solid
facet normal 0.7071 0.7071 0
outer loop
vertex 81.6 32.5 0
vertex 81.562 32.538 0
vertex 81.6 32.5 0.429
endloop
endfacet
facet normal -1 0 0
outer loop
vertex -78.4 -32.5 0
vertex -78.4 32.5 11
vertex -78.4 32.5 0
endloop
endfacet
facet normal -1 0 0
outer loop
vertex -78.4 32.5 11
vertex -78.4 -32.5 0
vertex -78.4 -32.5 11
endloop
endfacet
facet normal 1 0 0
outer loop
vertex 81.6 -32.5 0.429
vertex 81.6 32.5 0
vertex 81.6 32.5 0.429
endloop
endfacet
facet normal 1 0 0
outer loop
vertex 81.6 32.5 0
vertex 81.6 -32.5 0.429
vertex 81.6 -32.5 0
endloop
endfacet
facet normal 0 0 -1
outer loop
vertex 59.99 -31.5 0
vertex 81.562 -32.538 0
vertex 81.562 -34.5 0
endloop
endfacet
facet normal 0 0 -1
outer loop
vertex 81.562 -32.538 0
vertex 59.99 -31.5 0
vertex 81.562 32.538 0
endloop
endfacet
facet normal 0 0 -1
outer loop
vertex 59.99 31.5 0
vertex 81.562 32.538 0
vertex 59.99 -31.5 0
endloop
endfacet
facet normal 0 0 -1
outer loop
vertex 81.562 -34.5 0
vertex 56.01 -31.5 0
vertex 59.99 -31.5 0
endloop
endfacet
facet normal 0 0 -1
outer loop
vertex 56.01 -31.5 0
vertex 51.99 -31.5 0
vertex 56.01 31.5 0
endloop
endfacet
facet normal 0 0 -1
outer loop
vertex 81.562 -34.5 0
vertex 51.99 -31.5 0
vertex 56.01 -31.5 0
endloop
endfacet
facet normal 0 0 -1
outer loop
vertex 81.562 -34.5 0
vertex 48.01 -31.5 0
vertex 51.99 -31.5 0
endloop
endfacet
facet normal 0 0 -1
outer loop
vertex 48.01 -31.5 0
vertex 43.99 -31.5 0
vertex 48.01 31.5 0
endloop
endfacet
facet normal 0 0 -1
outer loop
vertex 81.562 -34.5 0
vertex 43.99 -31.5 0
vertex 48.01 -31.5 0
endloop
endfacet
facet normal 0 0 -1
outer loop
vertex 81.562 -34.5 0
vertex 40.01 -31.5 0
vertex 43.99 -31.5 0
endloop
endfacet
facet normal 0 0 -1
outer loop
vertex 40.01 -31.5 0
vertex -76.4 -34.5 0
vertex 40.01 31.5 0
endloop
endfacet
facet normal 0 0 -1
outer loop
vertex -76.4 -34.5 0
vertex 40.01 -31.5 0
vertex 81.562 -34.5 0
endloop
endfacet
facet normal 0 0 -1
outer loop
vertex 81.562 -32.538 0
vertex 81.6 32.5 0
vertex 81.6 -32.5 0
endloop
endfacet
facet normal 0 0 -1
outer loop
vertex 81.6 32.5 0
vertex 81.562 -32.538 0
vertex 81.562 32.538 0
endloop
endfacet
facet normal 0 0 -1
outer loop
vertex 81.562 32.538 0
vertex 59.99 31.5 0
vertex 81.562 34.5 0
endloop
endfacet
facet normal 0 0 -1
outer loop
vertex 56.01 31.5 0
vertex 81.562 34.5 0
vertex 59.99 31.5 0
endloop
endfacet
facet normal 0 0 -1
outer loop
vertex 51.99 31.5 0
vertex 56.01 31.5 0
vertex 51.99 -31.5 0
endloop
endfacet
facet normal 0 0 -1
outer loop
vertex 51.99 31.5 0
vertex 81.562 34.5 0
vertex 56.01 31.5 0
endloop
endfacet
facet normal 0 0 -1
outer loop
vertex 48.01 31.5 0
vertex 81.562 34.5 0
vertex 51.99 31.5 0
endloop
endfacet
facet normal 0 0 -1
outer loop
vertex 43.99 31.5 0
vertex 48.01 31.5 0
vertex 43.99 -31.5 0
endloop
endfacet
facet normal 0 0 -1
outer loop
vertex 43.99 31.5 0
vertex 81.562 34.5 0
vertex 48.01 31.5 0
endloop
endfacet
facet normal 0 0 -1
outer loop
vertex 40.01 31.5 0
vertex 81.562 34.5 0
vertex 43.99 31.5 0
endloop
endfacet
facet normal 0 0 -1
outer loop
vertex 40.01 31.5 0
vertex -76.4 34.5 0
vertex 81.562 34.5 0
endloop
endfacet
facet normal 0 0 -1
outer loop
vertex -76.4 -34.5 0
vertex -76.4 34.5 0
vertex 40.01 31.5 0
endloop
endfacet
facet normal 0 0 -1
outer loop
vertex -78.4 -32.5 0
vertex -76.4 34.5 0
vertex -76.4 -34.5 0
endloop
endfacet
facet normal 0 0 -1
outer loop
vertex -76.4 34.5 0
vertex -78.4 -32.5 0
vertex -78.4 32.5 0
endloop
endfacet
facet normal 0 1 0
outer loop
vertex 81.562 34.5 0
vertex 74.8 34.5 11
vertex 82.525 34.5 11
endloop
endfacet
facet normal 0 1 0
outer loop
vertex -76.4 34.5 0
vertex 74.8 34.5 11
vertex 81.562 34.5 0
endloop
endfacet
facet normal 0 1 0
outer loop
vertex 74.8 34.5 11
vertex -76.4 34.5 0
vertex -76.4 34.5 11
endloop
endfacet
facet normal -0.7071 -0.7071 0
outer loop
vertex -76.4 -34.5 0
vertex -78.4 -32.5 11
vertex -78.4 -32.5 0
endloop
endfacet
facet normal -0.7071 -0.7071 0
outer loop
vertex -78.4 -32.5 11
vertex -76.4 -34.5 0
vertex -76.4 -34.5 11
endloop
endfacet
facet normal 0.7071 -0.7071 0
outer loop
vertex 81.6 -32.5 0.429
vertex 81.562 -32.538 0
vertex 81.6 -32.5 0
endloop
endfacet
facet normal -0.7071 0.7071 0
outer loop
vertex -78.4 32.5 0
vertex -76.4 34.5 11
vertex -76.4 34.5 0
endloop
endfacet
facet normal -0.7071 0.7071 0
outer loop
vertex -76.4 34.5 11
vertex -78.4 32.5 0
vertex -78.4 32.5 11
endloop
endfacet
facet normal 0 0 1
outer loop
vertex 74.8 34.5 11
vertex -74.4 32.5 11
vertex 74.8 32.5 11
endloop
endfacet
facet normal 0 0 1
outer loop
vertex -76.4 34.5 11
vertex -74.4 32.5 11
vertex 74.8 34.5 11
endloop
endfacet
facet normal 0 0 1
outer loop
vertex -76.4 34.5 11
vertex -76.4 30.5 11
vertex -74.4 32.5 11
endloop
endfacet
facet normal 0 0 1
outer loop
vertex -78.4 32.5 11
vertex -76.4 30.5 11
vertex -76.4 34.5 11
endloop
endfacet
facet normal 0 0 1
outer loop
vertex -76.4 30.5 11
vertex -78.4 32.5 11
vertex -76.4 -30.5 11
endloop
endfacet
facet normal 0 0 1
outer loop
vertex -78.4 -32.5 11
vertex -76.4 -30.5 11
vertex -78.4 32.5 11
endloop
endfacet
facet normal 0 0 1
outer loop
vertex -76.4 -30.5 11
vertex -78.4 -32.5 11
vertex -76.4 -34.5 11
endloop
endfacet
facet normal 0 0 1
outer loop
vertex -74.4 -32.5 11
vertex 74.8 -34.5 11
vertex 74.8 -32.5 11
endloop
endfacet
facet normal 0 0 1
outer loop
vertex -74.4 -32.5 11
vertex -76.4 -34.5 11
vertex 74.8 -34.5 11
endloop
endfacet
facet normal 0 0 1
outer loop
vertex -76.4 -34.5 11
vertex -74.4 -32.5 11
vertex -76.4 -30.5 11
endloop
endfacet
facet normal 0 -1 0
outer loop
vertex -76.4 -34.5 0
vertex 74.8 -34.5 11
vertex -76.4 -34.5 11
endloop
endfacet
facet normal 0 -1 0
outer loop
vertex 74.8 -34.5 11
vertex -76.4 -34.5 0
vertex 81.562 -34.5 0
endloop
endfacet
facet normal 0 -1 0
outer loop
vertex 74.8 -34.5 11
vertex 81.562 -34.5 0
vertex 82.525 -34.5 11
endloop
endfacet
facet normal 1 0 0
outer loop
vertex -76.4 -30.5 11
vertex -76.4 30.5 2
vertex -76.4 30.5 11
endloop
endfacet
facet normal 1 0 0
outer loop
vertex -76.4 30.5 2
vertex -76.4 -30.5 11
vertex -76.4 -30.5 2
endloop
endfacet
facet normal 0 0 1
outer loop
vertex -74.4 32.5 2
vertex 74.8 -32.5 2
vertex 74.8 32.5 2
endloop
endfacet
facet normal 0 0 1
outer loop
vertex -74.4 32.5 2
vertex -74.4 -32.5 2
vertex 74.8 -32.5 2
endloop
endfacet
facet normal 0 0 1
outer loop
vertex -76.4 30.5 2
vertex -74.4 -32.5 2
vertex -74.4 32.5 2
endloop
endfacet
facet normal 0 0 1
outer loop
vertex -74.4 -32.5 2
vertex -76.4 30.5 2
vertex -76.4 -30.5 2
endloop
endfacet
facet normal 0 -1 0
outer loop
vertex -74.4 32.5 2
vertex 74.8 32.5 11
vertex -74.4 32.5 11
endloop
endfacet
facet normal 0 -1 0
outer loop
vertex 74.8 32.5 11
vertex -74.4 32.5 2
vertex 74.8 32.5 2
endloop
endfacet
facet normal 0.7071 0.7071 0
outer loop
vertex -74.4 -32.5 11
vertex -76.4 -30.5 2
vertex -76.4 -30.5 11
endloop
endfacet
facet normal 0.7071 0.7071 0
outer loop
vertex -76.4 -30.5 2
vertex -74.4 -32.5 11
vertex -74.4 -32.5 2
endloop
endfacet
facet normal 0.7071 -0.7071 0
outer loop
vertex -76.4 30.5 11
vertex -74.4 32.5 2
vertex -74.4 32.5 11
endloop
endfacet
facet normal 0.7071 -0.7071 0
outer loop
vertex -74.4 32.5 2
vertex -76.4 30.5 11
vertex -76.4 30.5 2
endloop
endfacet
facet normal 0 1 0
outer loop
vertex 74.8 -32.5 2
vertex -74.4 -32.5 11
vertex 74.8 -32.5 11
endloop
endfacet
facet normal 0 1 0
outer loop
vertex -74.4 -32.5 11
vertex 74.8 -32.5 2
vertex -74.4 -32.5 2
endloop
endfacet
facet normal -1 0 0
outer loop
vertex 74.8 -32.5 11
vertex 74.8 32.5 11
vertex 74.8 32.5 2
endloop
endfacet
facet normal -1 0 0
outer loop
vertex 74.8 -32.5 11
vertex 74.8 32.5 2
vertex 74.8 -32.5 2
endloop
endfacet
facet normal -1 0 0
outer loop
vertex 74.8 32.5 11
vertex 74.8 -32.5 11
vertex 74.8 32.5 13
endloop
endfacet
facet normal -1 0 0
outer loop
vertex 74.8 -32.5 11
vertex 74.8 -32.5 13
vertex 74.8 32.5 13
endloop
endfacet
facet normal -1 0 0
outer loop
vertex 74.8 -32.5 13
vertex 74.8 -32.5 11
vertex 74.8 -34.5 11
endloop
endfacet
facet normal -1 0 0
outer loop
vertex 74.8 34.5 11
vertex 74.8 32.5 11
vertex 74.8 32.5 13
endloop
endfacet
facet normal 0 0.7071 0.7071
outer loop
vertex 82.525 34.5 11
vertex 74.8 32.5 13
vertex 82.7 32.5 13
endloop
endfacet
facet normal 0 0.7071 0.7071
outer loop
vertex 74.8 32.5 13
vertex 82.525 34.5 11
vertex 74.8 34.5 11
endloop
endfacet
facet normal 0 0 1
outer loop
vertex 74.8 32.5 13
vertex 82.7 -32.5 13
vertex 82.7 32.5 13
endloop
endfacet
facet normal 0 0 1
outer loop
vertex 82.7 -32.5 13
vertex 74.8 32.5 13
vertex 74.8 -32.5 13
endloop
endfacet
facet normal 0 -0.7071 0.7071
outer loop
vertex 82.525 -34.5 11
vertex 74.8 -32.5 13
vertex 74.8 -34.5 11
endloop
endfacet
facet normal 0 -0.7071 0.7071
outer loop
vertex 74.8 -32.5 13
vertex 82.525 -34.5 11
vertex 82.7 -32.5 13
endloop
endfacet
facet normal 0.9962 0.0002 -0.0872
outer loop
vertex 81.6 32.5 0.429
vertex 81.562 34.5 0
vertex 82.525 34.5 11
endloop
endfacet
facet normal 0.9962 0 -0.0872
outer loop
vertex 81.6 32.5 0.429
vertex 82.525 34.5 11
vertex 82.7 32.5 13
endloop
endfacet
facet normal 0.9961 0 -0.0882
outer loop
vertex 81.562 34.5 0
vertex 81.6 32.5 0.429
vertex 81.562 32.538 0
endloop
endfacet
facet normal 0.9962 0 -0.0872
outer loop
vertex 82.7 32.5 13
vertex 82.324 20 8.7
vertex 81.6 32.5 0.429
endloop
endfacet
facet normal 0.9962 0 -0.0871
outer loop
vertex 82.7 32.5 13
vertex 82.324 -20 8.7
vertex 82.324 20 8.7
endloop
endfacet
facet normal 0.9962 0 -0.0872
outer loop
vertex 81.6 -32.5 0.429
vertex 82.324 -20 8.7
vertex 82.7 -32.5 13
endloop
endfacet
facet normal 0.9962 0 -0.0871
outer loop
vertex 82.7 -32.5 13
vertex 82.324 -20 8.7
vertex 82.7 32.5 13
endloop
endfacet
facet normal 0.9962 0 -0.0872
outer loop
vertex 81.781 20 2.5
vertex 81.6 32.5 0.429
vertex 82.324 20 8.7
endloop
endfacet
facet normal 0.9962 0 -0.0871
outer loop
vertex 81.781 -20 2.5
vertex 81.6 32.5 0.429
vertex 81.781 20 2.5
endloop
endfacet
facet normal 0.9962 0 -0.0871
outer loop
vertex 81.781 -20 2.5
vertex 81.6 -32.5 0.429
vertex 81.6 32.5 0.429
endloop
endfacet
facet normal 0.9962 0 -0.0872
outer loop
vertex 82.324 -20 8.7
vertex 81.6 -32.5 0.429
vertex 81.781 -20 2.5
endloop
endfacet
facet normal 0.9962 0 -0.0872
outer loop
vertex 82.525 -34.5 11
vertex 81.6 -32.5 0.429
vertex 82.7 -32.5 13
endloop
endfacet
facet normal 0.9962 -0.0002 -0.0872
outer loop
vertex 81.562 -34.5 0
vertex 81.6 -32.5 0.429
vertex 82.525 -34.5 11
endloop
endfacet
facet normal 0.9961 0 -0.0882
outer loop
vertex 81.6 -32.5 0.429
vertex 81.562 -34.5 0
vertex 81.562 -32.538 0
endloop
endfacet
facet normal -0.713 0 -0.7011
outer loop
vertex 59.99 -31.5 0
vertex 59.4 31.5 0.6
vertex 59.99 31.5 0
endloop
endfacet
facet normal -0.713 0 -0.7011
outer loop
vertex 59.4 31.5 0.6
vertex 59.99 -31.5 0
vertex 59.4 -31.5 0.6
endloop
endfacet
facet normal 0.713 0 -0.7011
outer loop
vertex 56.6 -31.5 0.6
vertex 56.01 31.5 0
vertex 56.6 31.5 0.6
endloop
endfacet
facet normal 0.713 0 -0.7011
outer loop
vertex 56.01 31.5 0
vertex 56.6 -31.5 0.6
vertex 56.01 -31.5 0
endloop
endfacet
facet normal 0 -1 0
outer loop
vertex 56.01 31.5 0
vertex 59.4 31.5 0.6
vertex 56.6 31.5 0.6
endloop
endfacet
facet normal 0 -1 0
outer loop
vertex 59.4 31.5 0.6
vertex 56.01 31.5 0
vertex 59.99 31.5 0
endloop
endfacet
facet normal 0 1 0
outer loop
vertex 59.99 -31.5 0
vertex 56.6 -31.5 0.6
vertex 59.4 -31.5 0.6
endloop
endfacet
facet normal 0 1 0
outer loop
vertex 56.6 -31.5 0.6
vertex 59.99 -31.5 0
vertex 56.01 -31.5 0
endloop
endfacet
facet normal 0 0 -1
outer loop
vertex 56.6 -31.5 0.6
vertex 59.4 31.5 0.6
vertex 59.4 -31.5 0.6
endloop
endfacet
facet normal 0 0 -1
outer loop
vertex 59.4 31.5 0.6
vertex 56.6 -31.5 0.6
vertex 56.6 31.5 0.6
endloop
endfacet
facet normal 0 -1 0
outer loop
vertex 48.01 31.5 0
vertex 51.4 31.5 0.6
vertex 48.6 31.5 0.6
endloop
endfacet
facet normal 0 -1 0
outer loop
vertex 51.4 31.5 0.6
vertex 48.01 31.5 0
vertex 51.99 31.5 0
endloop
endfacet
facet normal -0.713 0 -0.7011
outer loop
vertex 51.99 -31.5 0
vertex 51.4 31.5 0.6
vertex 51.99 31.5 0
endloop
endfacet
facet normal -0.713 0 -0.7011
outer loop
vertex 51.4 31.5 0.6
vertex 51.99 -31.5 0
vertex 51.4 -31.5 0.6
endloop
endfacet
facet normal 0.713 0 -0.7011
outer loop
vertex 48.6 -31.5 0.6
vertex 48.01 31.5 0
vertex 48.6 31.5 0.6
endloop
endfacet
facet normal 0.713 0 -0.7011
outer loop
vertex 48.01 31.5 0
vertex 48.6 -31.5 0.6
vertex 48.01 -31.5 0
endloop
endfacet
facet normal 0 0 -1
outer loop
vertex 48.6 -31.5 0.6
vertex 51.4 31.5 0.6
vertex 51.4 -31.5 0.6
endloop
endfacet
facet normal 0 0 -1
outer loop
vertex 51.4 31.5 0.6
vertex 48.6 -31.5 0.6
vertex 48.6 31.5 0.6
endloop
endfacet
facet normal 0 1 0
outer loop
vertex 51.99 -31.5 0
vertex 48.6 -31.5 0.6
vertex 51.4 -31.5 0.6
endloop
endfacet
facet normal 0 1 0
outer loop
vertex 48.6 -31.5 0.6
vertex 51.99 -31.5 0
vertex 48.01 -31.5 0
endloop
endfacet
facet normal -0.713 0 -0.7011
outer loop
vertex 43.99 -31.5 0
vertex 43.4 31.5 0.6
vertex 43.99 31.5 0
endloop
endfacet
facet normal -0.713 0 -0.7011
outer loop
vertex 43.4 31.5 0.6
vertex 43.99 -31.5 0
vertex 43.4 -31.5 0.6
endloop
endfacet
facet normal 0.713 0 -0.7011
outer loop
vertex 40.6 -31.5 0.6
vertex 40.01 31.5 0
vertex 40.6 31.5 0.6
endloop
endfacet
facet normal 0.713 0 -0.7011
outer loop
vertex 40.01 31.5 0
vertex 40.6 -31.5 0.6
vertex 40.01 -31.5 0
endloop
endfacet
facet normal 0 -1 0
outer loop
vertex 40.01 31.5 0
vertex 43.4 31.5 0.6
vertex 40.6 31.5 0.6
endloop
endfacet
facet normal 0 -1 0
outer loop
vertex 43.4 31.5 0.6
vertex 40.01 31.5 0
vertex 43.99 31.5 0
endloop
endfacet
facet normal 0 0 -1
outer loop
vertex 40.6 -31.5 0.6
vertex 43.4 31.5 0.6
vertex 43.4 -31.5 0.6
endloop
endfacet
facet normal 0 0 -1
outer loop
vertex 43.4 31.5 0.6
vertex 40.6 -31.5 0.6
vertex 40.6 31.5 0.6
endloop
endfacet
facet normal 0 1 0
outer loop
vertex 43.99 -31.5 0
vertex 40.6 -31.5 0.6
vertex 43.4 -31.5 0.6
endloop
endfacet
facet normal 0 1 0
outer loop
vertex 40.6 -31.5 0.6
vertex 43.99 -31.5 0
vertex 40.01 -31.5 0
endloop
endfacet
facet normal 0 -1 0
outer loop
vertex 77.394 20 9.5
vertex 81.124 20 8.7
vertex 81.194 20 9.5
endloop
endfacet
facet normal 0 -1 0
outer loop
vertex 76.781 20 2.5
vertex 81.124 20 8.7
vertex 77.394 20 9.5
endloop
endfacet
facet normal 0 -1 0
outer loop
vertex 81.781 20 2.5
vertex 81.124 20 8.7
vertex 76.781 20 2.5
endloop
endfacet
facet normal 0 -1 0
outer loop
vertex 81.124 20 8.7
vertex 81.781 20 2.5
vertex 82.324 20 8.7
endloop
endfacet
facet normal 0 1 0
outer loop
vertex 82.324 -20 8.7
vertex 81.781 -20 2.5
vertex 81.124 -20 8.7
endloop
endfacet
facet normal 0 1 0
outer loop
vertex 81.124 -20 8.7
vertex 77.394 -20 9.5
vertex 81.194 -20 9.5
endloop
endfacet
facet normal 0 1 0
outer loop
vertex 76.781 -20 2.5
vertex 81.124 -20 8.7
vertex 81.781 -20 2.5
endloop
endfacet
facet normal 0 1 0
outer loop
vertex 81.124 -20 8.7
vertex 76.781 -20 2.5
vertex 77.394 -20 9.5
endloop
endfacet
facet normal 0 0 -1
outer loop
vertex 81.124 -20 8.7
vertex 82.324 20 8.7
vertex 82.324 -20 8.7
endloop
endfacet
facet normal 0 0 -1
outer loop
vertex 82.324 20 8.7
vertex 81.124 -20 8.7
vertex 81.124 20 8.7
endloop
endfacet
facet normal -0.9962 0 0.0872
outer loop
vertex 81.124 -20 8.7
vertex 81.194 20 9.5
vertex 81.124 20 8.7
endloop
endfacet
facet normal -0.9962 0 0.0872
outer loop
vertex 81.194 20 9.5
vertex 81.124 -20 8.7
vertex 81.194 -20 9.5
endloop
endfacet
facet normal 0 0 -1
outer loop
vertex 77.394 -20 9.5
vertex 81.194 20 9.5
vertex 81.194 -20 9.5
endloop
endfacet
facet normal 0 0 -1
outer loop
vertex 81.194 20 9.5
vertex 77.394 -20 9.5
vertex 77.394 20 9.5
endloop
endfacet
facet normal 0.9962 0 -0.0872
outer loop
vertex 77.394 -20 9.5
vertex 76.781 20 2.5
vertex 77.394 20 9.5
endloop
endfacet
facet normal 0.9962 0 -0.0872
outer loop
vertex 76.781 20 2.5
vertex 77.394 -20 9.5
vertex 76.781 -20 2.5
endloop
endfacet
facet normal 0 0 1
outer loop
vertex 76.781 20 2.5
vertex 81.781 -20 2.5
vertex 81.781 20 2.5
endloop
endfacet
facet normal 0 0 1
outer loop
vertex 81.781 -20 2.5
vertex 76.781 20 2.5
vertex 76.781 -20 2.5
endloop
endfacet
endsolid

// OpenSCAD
// Pull-out drip tray only — prints as modelled, flat on the bed, basin
// up. See marsh_repot_019.scad.
include <marsh_repot_019.scad>
part = "tray";
